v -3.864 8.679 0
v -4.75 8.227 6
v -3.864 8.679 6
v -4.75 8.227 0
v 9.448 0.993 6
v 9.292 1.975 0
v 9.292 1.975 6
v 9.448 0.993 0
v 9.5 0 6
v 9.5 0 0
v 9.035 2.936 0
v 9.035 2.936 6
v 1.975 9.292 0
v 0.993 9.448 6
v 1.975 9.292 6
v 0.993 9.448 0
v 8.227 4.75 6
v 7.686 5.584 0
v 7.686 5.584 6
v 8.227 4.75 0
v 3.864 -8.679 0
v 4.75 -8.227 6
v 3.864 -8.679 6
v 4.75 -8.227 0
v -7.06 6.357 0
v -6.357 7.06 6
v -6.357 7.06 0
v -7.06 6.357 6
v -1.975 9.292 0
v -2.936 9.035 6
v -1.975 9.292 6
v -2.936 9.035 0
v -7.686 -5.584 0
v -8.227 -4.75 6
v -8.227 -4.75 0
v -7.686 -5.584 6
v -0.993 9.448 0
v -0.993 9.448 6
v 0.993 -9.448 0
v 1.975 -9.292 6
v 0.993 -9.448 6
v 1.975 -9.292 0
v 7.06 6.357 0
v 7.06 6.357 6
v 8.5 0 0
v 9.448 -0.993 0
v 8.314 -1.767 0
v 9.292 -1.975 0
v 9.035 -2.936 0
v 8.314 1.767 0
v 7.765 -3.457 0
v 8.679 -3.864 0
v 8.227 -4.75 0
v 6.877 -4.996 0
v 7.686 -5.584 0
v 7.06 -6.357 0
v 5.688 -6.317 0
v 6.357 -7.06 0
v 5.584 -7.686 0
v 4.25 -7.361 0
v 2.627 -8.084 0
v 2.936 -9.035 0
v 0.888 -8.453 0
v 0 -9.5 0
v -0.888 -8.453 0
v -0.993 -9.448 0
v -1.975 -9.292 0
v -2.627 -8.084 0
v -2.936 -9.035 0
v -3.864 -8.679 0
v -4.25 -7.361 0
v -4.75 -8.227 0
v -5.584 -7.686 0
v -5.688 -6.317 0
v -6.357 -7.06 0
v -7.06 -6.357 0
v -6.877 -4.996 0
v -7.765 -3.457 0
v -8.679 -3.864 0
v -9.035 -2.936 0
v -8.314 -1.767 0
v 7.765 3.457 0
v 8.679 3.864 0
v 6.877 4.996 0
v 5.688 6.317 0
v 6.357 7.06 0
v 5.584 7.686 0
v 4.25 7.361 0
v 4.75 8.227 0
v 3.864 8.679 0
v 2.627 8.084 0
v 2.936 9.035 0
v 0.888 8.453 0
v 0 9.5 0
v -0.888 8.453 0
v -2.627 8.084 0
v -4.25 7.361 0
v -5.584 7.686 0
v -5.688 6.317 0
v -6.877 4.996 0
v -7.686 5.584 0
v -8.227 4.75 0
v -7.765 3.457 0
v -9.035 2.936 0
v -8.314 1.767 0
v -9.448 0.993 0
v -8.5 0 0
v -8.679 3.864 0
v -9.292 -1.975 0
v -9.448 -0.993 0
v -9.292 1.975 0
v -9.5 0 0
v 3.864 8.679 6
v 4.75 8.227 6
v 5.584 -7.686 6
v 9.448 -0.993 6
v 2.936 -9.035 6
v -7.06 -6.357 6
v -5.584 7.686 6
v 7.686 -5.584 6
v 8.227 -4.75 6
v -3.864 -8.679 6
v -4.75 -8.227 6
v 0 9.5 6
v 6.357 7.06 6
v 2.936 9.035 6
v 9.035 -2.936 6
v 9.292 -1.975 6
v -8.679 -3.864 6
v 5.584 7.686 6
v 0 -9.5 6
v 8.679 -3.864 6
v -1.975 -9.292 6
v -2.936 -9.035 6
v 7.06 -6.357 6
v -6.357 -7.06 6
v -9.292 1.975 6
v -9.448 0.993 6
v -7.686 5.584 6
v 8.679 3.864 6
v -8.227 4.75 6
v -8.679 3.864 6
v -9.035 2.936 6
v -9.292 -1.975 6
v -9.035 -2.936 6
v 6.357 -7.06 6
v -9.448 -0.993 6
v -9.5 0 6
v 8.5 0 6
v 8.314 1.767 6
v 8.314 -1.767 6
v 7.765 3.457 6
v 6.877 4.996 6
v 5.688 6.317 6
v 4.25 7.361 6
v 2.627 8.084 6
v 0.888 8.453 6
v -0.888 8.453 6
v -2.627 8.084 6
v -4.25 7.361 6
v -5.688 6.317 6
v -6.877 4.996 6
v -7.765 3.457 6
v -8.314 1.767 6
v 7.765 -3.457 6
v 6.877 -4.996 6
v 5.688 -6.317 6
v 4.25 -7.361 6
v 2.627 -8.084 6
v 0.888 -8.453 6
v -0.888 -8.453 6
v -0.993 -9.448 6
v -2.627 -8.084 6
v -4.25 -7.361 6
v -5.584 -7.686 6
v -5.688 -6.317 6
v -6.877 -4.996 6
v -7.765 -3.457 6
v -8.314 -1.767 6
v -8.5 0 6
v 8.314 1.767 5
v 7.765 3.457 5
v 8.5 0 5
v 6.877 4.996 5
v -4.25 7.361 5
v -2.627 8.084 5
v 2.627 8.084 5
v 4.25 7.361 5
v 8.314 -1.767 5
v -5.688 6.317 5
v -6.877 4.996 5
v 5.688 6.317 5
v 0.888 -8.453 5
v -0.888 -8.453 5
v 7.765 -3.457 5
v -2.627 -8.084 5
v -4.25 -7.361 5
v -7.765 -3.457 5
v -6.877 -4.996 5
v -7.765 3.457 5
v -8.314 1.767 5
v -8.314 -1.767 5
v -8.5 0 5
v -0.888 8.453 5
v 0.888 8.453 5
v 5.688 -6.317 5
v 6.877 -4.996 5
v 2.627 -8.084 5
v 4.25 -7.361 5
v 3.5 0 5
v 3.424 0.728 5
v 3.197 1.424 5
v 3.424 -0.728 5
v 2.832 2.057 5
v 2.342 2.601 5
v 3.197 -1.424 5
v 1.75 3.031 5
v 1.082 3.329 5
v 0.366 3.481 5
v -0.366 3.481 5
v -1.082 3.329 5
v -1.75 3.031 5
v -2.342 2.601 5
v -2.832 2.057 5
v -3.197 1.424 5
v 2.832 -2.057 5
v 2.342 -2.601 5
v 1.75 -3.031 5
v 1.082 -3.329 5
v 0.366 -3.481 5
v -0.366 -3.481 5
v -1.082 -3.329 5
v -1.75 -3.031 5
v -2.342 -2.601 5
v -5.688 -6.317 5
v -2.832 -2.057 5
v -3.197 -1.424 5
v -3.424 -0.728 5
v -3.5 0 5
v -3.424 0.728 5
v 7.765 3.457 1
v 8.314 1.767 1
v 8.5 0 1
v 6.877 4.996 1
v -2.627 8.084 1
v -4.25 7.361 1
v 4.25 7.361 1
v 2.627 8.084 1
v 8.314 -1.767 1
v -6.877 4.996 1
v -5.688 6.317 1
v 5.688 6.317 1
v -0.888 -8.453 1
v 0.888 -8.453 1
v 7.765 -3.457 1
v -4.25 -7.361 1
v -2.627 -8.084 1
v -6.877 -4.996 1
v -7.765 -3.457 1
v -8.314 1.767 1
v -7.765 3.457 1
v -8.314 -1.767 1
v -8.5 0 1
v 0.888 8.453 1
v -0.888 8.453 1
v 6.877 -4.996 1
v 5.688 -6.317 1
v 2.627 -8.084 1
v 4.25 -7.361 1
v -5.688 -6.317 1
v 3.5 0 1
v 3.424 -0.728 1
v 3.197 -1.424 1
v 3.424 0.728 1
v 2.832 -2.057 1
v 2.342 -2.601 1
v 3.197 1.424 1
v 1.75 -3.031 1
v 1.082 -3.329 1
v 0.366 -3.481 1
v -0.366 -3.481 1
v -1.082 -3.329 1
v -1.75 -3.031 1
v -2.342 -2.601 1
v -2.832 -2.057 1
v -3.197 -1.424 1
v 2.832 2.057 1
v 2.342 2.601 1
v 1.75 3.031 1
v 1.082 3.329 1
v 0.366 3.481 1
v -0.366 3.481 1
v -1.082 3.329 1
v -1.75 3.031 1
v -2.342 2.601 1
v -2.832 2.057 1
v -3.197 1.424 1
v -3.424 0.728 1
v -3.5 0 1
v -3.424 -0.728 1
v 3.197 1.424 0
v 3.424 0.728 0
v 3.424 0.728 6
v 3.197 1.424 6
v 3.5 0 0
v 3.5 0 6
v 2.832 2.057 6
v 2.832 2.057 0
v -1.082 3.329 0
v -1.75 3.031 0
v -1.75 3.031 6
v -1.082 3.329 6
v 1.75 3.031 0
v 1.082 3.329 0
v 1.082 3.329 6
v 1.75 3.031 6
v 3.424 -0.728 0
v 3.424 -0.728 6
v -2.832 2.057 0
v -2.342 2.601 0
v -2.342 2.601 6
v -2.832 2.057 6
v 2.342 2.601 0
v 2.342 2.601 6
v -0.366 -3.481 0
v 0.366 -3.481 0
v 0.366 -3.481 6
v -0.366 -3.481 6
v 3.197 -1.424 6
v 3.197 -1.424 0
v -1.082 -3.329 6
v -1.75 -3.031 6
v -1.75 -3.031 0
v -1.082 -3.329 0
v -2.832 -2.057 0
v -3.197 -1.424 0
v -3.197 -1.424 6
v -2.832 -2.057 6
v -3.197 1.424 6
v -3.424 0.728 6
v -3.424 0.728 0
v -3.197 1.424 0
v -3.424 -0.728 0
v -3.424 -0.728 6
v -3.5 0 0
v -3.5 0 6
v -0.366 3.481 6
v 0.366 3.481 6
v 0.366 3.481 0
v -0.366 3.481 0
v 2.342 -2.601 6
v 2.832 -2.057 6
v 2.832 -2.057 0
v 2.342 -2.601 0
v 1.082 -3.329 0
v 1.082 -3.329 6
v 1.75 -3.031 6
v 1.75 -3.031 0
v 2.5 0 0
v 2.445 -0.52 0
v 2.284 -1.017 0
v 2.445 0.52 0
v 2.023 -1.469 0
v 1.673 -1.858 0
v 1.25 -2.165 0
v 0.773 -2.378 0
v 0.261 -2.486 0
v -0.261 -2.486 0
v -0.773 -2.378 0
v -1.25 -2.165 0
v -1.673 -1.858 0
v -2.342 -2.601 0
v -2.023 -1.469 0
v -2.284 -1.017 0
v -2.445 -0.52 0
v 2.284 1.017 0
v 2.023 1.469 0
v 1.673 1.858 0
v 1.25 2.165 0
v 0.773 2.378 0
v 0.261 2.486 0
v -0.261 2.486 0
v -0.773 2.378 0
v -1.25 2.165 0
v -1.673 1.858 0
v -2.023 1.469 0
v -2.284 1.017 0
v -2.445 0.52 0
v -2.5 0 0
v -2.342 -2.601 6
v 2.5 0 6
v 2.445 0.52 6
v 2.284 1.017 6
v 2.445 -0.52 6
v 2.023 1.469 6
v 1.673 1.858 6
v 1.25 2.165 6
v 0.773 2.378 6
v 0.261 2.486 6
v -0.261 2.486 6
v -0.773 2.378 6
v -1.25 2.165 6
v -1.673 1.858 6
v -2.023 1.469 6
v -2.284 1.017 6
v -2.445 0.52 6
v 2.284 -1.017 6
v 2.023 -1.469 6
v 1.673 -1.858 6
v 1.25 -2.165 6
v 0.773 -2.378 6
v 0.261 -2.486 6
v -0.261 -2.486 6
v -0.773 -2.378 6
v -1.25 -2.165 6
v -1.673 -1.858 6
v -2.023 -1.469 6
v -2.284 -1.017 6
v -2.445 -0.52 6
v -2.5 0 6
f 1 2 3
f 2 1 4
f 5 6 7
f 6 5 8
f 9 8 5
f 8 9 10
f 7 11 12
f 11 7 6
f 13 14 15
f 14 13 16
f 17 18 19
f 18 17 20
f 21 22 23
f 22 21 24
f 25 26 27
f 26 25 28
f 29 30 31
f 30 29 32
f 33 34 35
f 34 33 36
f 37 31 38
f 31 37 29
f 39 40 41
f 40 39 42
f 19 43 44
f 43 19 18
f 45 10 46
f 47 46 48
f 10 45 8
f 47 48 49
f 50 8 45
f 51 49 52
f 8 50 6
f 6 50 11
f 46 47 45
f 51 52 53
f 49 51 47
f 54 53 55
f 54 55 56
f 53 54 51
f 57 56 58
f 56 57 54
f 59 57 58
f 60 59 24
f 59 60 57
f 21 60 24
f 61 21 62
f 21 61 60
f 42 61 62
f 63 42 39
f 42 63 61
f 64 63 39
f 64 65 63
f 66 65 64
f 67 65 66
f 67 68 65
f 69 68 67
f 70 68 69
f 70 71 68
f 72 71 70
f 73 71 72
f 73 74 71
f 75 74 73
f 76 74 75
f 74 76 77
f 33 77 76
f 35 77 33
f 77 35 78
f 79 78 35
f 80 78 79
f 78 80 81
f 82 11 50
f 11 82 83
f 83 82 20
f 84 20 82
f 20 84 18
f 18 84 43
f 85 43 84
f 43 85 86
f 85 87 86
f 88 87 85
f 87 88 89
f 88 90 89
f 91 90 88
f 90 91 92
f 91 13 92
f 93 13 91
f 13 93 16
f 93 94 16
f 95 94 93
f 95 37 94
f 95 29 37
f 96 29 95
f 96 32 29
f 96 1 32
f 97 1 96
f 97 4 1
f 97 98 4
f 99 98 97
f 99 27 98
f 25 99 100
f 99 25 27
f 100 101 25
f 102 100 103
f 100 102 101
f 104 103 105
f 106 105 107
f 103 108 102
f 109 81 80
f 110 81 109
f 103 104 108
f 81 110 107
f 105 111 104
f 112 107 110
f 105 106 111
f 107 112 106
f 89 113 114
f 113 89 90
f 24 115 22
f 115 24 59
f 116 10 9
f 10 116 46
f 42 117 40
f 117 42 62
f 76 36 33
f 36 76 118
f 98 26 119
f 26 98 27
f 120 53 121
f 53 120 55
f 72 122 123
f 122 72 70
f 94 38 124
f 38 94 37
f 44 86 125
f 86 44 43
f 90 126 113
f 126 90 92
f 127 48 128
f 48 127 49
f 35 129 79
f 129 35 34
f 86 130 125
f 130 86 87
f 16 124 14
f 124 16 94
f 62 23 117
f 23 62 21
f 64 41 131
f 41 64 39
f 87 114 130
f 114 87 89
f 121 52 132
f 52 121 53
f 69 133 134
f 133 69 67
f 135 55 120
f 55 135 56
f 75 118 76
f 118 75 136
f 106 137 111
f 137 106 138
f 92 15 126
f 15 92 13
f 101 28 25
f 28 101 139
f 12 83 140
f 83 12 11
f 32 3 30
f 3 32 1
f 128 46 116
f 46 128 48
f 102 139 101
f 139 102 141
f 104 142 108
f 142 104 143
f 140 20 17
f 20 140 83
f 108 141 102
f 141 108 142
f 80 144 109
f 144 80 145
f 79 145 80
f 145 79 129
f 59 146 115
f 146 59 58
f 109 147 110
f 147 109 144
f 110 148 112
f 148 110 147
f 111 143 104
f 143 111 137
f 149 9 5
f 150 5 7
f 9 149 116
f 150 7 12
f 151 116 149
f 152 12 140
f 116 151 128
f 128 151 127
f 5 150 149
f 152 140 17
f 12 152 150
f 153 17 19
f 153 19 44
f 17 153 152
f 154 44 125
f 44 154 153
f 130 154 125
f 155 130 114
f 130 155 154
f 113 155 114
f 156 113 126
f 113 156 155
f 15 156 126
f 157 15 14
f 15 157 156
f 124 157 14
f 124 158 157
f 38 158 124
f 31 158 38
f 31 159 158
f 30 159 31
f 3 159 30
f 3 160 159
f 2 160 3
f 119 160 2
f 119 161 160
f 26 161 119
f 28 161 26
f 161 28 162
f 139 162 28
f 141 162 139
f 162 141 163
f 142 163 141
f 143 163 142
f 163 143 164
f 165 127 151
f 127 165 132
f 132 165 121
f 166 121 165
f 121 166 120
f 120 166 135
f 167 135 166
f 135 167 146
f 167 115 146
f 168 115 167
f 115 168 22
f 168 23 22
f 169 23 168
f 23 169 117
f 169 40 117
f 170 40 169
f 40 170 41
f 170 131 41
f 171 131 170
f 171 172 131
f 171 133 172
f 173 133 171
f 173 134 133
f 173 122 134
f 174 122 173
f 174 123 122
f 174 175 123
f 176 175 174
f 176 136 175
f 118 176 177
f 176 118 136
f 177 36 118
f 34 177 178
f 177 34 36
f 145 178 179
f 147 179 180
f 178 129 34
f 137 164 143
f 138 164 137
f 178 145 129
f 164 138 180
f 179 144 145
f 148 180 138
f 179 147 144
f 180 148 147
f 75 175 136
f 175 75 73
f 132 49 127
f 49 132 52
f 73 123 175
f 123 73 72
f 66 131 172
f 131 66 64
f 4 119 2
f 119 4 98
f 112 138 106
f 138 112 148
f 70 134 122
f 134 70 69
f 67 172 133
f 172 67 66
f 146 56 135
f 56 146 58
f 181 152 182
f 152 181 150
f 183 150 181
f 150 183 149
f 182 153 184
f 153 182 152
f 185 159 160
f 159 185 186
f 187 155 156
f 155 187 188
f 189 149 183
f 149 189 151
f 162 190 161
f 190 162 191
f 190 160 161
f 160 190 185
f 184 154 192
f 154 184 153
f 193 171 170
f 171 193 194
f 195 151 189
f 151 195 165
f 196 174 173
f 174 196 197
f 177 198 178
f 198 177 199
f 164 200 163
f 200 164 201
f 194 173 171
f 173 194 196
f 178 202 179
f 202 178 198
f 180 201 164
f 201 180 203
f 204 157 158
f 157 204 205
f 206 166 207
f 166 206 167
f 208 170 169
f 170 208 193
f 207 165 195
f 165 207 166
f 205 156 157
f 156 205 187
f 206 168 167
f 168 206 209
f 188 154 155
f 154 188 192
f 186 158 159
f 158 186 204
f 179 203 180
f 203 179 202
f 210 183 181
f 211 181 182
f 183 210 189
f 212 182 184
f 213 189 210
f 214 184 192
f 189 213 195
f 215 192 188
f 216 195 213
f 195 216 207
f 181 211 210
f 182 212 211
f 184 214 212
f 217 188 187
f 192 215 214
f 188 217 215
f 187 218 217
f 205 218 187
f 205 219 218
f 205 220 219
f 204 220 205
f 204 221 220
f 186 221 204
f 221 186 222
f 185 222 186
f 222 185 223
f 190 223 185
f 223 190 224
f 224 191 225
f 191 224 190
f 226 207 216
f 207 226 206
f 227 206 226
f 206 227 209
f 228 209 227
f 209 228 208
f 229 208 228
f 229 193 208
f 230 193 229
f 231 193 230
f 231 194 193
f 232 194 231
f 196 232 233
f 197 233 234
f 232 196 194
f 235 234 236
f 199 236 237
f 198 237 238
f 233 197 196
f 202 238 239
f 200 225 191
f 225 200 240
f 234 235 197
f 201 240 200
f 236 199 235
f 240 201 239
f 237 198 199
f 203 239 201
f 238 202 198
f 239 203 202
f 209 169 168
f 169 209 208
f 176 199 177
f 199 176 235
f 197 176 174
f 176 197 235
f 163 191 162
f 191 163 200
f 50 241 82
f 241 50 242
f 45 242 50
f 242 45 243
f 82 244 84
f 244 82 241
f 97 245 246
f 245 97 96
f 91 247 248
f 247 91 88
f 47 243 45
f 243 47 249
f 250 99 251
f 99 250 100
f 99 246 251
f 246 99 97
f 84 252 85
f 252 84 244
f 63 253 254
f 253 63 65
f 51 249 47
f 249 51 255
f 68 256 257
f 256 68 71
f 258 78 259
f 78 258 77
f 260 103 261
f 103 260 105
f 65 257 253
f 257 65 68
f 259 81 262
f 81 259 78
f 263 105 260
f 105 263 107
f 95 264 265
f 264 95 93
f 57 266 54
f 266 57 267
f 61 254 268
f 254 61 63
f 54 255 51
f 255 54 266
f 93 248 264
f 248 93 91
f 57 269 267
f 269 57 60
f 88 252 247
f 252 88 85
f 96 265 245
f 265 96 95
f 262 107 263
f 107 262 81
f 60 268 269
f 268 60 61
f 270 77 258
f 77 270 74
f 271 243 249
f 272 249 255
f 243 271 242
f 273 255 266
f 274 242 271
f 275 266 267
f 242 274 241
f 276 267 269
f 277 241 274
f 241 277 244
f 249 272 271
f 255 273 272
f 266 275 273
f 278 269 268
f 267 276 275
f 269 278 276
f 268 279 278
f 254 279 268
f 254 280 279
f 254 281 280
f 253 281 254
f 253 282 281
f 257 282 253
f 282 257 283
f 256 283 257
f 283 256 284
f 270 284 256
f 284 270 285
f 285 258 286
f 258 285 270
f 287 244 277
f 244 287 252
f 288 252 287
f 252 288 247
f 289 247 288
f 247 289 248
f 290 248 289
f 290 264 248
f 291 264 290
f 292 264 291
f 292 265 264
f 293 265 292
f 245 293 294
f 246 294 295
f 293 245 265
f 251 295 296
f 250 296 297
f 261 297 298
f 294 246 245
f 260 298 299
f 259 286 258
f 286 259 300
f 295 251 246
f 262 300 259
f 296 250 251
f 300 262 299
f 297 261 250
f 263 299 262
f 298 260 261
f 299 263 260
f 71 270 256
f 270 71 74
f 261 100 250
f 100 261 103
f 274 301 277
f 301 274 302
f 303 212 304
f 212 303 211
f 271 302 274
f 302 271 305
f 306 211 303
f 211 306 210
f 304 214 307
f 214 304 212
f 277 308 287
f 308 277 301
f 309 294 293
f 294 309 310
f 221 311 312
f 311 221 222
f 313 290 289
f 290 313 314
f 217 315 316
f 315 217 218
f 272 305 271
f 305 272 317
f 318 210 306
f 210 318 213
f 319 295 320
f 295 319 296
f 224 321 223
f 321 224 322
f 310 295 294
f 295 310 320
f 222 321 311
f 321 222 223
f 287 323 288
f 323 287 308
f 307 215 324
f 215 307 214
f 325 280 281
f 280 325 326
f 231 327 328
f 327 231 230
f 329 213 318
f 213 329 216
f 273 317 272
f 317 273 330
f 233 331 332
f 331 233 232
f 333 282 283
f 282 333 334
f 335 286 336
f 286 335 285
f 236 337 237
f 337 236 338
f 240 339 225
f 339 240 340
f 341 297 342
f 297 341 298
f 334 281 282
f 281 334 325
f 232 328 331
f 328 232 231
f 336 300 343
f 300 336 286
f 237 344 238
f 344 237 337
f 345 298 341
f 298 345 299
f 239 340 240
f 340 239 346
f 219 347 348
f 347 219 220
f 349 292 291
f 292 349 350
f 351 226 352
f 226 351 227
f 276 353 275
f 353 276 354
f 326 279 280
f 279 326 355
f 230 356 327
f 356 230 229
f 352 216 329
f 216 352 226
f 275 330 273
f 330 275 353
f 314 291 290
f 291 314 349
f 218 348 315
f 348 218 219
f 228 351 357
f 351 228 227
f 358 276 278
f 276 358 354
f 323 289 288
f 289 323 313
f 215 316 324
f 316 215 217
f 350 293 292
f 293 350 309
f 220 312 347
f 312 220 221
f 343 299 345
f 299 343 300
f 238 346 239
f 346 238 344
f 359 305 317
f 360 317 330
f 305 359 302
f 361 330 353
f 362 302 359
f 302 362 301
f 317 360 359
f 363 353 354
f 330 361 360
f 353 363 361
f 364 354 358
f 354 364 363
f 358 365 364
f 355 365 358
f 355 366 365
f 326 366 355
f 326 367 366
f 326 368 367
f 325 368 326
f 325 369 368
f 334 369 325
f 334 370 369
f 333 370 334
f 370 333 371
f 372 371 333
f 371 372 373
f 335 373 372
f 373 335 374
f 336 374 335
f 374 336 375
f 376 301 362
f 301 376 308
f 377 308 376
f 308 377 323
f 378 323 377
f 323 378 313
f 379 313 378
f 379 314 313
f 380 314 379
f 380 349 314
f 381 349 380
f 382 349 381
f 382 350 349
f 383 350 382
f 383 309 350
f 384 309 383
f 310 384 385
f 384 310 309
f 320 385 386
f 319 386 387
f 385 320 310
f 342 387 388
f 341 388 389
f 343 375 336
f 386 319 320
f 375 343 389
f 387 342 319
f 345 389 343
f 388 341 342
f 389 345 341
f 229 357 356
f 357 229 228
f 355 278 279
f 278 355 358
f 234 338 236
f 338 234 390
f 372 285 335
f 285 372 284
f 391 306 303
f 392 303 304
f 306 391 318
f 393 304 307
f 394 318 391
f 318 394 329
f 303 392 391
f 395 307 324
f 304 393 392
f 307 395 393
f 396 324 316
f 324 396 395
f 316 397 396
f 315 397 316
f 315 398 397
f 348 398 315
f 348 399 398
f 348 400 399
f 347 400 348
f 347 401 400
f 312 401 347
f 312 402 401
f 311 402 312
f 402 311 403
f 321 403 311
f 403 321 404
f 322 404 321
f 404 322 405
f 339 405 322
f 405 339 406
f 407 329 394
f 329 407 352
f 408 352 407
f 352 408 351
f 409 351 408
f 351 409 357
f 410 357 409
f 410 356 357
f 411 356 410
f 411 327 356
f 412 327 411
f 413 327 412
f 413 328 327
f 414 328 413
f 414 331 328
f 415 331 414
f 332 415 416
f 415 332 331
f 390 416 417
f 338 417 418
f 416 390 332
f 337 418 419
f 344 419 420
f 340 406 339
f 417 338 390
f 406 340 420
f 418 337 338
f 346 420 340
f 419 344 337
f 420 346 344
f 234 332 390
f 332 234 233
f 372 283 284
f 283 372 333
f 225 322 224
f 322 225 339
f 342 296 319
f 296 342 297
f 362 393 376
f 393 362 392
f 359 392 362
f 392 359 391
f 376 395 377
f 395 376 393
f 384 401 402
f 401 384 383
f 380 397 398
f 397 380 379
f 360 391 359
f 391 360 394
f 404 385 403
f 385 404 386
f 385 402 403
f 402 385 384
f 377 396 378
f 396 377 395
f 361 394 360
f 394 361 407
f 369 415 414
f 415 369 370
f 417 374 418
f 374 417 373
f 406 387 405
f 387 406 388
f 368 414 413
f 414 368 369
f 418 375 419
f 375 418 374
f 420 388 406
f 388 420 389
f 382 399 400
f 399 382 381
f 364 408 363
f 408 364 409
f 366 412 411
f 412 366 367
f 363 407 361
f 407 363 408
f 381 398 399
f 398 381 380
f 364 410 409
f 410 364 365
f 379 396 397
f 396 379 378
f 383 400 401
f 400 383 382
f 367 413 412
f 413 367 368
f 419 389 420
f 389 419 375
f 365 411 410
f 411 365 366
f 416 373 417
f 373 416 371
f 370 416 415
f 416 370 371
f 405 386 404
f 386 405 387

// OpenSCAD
difference(){
union(){
difference(){
  cylinder(d=19,h=6,$fn=60);
  translate([0,0,5])cylinder(d=19-2,h=2,$fn=30);
  translate([0,0,0])cylinder(d=19-2,h=1,$fn=30);
  
}
cylinder(d=7,h=6,$fn=30);
}
  translate([0,0,-10])cylinder(d=5,h=100,$fn=30);
}
